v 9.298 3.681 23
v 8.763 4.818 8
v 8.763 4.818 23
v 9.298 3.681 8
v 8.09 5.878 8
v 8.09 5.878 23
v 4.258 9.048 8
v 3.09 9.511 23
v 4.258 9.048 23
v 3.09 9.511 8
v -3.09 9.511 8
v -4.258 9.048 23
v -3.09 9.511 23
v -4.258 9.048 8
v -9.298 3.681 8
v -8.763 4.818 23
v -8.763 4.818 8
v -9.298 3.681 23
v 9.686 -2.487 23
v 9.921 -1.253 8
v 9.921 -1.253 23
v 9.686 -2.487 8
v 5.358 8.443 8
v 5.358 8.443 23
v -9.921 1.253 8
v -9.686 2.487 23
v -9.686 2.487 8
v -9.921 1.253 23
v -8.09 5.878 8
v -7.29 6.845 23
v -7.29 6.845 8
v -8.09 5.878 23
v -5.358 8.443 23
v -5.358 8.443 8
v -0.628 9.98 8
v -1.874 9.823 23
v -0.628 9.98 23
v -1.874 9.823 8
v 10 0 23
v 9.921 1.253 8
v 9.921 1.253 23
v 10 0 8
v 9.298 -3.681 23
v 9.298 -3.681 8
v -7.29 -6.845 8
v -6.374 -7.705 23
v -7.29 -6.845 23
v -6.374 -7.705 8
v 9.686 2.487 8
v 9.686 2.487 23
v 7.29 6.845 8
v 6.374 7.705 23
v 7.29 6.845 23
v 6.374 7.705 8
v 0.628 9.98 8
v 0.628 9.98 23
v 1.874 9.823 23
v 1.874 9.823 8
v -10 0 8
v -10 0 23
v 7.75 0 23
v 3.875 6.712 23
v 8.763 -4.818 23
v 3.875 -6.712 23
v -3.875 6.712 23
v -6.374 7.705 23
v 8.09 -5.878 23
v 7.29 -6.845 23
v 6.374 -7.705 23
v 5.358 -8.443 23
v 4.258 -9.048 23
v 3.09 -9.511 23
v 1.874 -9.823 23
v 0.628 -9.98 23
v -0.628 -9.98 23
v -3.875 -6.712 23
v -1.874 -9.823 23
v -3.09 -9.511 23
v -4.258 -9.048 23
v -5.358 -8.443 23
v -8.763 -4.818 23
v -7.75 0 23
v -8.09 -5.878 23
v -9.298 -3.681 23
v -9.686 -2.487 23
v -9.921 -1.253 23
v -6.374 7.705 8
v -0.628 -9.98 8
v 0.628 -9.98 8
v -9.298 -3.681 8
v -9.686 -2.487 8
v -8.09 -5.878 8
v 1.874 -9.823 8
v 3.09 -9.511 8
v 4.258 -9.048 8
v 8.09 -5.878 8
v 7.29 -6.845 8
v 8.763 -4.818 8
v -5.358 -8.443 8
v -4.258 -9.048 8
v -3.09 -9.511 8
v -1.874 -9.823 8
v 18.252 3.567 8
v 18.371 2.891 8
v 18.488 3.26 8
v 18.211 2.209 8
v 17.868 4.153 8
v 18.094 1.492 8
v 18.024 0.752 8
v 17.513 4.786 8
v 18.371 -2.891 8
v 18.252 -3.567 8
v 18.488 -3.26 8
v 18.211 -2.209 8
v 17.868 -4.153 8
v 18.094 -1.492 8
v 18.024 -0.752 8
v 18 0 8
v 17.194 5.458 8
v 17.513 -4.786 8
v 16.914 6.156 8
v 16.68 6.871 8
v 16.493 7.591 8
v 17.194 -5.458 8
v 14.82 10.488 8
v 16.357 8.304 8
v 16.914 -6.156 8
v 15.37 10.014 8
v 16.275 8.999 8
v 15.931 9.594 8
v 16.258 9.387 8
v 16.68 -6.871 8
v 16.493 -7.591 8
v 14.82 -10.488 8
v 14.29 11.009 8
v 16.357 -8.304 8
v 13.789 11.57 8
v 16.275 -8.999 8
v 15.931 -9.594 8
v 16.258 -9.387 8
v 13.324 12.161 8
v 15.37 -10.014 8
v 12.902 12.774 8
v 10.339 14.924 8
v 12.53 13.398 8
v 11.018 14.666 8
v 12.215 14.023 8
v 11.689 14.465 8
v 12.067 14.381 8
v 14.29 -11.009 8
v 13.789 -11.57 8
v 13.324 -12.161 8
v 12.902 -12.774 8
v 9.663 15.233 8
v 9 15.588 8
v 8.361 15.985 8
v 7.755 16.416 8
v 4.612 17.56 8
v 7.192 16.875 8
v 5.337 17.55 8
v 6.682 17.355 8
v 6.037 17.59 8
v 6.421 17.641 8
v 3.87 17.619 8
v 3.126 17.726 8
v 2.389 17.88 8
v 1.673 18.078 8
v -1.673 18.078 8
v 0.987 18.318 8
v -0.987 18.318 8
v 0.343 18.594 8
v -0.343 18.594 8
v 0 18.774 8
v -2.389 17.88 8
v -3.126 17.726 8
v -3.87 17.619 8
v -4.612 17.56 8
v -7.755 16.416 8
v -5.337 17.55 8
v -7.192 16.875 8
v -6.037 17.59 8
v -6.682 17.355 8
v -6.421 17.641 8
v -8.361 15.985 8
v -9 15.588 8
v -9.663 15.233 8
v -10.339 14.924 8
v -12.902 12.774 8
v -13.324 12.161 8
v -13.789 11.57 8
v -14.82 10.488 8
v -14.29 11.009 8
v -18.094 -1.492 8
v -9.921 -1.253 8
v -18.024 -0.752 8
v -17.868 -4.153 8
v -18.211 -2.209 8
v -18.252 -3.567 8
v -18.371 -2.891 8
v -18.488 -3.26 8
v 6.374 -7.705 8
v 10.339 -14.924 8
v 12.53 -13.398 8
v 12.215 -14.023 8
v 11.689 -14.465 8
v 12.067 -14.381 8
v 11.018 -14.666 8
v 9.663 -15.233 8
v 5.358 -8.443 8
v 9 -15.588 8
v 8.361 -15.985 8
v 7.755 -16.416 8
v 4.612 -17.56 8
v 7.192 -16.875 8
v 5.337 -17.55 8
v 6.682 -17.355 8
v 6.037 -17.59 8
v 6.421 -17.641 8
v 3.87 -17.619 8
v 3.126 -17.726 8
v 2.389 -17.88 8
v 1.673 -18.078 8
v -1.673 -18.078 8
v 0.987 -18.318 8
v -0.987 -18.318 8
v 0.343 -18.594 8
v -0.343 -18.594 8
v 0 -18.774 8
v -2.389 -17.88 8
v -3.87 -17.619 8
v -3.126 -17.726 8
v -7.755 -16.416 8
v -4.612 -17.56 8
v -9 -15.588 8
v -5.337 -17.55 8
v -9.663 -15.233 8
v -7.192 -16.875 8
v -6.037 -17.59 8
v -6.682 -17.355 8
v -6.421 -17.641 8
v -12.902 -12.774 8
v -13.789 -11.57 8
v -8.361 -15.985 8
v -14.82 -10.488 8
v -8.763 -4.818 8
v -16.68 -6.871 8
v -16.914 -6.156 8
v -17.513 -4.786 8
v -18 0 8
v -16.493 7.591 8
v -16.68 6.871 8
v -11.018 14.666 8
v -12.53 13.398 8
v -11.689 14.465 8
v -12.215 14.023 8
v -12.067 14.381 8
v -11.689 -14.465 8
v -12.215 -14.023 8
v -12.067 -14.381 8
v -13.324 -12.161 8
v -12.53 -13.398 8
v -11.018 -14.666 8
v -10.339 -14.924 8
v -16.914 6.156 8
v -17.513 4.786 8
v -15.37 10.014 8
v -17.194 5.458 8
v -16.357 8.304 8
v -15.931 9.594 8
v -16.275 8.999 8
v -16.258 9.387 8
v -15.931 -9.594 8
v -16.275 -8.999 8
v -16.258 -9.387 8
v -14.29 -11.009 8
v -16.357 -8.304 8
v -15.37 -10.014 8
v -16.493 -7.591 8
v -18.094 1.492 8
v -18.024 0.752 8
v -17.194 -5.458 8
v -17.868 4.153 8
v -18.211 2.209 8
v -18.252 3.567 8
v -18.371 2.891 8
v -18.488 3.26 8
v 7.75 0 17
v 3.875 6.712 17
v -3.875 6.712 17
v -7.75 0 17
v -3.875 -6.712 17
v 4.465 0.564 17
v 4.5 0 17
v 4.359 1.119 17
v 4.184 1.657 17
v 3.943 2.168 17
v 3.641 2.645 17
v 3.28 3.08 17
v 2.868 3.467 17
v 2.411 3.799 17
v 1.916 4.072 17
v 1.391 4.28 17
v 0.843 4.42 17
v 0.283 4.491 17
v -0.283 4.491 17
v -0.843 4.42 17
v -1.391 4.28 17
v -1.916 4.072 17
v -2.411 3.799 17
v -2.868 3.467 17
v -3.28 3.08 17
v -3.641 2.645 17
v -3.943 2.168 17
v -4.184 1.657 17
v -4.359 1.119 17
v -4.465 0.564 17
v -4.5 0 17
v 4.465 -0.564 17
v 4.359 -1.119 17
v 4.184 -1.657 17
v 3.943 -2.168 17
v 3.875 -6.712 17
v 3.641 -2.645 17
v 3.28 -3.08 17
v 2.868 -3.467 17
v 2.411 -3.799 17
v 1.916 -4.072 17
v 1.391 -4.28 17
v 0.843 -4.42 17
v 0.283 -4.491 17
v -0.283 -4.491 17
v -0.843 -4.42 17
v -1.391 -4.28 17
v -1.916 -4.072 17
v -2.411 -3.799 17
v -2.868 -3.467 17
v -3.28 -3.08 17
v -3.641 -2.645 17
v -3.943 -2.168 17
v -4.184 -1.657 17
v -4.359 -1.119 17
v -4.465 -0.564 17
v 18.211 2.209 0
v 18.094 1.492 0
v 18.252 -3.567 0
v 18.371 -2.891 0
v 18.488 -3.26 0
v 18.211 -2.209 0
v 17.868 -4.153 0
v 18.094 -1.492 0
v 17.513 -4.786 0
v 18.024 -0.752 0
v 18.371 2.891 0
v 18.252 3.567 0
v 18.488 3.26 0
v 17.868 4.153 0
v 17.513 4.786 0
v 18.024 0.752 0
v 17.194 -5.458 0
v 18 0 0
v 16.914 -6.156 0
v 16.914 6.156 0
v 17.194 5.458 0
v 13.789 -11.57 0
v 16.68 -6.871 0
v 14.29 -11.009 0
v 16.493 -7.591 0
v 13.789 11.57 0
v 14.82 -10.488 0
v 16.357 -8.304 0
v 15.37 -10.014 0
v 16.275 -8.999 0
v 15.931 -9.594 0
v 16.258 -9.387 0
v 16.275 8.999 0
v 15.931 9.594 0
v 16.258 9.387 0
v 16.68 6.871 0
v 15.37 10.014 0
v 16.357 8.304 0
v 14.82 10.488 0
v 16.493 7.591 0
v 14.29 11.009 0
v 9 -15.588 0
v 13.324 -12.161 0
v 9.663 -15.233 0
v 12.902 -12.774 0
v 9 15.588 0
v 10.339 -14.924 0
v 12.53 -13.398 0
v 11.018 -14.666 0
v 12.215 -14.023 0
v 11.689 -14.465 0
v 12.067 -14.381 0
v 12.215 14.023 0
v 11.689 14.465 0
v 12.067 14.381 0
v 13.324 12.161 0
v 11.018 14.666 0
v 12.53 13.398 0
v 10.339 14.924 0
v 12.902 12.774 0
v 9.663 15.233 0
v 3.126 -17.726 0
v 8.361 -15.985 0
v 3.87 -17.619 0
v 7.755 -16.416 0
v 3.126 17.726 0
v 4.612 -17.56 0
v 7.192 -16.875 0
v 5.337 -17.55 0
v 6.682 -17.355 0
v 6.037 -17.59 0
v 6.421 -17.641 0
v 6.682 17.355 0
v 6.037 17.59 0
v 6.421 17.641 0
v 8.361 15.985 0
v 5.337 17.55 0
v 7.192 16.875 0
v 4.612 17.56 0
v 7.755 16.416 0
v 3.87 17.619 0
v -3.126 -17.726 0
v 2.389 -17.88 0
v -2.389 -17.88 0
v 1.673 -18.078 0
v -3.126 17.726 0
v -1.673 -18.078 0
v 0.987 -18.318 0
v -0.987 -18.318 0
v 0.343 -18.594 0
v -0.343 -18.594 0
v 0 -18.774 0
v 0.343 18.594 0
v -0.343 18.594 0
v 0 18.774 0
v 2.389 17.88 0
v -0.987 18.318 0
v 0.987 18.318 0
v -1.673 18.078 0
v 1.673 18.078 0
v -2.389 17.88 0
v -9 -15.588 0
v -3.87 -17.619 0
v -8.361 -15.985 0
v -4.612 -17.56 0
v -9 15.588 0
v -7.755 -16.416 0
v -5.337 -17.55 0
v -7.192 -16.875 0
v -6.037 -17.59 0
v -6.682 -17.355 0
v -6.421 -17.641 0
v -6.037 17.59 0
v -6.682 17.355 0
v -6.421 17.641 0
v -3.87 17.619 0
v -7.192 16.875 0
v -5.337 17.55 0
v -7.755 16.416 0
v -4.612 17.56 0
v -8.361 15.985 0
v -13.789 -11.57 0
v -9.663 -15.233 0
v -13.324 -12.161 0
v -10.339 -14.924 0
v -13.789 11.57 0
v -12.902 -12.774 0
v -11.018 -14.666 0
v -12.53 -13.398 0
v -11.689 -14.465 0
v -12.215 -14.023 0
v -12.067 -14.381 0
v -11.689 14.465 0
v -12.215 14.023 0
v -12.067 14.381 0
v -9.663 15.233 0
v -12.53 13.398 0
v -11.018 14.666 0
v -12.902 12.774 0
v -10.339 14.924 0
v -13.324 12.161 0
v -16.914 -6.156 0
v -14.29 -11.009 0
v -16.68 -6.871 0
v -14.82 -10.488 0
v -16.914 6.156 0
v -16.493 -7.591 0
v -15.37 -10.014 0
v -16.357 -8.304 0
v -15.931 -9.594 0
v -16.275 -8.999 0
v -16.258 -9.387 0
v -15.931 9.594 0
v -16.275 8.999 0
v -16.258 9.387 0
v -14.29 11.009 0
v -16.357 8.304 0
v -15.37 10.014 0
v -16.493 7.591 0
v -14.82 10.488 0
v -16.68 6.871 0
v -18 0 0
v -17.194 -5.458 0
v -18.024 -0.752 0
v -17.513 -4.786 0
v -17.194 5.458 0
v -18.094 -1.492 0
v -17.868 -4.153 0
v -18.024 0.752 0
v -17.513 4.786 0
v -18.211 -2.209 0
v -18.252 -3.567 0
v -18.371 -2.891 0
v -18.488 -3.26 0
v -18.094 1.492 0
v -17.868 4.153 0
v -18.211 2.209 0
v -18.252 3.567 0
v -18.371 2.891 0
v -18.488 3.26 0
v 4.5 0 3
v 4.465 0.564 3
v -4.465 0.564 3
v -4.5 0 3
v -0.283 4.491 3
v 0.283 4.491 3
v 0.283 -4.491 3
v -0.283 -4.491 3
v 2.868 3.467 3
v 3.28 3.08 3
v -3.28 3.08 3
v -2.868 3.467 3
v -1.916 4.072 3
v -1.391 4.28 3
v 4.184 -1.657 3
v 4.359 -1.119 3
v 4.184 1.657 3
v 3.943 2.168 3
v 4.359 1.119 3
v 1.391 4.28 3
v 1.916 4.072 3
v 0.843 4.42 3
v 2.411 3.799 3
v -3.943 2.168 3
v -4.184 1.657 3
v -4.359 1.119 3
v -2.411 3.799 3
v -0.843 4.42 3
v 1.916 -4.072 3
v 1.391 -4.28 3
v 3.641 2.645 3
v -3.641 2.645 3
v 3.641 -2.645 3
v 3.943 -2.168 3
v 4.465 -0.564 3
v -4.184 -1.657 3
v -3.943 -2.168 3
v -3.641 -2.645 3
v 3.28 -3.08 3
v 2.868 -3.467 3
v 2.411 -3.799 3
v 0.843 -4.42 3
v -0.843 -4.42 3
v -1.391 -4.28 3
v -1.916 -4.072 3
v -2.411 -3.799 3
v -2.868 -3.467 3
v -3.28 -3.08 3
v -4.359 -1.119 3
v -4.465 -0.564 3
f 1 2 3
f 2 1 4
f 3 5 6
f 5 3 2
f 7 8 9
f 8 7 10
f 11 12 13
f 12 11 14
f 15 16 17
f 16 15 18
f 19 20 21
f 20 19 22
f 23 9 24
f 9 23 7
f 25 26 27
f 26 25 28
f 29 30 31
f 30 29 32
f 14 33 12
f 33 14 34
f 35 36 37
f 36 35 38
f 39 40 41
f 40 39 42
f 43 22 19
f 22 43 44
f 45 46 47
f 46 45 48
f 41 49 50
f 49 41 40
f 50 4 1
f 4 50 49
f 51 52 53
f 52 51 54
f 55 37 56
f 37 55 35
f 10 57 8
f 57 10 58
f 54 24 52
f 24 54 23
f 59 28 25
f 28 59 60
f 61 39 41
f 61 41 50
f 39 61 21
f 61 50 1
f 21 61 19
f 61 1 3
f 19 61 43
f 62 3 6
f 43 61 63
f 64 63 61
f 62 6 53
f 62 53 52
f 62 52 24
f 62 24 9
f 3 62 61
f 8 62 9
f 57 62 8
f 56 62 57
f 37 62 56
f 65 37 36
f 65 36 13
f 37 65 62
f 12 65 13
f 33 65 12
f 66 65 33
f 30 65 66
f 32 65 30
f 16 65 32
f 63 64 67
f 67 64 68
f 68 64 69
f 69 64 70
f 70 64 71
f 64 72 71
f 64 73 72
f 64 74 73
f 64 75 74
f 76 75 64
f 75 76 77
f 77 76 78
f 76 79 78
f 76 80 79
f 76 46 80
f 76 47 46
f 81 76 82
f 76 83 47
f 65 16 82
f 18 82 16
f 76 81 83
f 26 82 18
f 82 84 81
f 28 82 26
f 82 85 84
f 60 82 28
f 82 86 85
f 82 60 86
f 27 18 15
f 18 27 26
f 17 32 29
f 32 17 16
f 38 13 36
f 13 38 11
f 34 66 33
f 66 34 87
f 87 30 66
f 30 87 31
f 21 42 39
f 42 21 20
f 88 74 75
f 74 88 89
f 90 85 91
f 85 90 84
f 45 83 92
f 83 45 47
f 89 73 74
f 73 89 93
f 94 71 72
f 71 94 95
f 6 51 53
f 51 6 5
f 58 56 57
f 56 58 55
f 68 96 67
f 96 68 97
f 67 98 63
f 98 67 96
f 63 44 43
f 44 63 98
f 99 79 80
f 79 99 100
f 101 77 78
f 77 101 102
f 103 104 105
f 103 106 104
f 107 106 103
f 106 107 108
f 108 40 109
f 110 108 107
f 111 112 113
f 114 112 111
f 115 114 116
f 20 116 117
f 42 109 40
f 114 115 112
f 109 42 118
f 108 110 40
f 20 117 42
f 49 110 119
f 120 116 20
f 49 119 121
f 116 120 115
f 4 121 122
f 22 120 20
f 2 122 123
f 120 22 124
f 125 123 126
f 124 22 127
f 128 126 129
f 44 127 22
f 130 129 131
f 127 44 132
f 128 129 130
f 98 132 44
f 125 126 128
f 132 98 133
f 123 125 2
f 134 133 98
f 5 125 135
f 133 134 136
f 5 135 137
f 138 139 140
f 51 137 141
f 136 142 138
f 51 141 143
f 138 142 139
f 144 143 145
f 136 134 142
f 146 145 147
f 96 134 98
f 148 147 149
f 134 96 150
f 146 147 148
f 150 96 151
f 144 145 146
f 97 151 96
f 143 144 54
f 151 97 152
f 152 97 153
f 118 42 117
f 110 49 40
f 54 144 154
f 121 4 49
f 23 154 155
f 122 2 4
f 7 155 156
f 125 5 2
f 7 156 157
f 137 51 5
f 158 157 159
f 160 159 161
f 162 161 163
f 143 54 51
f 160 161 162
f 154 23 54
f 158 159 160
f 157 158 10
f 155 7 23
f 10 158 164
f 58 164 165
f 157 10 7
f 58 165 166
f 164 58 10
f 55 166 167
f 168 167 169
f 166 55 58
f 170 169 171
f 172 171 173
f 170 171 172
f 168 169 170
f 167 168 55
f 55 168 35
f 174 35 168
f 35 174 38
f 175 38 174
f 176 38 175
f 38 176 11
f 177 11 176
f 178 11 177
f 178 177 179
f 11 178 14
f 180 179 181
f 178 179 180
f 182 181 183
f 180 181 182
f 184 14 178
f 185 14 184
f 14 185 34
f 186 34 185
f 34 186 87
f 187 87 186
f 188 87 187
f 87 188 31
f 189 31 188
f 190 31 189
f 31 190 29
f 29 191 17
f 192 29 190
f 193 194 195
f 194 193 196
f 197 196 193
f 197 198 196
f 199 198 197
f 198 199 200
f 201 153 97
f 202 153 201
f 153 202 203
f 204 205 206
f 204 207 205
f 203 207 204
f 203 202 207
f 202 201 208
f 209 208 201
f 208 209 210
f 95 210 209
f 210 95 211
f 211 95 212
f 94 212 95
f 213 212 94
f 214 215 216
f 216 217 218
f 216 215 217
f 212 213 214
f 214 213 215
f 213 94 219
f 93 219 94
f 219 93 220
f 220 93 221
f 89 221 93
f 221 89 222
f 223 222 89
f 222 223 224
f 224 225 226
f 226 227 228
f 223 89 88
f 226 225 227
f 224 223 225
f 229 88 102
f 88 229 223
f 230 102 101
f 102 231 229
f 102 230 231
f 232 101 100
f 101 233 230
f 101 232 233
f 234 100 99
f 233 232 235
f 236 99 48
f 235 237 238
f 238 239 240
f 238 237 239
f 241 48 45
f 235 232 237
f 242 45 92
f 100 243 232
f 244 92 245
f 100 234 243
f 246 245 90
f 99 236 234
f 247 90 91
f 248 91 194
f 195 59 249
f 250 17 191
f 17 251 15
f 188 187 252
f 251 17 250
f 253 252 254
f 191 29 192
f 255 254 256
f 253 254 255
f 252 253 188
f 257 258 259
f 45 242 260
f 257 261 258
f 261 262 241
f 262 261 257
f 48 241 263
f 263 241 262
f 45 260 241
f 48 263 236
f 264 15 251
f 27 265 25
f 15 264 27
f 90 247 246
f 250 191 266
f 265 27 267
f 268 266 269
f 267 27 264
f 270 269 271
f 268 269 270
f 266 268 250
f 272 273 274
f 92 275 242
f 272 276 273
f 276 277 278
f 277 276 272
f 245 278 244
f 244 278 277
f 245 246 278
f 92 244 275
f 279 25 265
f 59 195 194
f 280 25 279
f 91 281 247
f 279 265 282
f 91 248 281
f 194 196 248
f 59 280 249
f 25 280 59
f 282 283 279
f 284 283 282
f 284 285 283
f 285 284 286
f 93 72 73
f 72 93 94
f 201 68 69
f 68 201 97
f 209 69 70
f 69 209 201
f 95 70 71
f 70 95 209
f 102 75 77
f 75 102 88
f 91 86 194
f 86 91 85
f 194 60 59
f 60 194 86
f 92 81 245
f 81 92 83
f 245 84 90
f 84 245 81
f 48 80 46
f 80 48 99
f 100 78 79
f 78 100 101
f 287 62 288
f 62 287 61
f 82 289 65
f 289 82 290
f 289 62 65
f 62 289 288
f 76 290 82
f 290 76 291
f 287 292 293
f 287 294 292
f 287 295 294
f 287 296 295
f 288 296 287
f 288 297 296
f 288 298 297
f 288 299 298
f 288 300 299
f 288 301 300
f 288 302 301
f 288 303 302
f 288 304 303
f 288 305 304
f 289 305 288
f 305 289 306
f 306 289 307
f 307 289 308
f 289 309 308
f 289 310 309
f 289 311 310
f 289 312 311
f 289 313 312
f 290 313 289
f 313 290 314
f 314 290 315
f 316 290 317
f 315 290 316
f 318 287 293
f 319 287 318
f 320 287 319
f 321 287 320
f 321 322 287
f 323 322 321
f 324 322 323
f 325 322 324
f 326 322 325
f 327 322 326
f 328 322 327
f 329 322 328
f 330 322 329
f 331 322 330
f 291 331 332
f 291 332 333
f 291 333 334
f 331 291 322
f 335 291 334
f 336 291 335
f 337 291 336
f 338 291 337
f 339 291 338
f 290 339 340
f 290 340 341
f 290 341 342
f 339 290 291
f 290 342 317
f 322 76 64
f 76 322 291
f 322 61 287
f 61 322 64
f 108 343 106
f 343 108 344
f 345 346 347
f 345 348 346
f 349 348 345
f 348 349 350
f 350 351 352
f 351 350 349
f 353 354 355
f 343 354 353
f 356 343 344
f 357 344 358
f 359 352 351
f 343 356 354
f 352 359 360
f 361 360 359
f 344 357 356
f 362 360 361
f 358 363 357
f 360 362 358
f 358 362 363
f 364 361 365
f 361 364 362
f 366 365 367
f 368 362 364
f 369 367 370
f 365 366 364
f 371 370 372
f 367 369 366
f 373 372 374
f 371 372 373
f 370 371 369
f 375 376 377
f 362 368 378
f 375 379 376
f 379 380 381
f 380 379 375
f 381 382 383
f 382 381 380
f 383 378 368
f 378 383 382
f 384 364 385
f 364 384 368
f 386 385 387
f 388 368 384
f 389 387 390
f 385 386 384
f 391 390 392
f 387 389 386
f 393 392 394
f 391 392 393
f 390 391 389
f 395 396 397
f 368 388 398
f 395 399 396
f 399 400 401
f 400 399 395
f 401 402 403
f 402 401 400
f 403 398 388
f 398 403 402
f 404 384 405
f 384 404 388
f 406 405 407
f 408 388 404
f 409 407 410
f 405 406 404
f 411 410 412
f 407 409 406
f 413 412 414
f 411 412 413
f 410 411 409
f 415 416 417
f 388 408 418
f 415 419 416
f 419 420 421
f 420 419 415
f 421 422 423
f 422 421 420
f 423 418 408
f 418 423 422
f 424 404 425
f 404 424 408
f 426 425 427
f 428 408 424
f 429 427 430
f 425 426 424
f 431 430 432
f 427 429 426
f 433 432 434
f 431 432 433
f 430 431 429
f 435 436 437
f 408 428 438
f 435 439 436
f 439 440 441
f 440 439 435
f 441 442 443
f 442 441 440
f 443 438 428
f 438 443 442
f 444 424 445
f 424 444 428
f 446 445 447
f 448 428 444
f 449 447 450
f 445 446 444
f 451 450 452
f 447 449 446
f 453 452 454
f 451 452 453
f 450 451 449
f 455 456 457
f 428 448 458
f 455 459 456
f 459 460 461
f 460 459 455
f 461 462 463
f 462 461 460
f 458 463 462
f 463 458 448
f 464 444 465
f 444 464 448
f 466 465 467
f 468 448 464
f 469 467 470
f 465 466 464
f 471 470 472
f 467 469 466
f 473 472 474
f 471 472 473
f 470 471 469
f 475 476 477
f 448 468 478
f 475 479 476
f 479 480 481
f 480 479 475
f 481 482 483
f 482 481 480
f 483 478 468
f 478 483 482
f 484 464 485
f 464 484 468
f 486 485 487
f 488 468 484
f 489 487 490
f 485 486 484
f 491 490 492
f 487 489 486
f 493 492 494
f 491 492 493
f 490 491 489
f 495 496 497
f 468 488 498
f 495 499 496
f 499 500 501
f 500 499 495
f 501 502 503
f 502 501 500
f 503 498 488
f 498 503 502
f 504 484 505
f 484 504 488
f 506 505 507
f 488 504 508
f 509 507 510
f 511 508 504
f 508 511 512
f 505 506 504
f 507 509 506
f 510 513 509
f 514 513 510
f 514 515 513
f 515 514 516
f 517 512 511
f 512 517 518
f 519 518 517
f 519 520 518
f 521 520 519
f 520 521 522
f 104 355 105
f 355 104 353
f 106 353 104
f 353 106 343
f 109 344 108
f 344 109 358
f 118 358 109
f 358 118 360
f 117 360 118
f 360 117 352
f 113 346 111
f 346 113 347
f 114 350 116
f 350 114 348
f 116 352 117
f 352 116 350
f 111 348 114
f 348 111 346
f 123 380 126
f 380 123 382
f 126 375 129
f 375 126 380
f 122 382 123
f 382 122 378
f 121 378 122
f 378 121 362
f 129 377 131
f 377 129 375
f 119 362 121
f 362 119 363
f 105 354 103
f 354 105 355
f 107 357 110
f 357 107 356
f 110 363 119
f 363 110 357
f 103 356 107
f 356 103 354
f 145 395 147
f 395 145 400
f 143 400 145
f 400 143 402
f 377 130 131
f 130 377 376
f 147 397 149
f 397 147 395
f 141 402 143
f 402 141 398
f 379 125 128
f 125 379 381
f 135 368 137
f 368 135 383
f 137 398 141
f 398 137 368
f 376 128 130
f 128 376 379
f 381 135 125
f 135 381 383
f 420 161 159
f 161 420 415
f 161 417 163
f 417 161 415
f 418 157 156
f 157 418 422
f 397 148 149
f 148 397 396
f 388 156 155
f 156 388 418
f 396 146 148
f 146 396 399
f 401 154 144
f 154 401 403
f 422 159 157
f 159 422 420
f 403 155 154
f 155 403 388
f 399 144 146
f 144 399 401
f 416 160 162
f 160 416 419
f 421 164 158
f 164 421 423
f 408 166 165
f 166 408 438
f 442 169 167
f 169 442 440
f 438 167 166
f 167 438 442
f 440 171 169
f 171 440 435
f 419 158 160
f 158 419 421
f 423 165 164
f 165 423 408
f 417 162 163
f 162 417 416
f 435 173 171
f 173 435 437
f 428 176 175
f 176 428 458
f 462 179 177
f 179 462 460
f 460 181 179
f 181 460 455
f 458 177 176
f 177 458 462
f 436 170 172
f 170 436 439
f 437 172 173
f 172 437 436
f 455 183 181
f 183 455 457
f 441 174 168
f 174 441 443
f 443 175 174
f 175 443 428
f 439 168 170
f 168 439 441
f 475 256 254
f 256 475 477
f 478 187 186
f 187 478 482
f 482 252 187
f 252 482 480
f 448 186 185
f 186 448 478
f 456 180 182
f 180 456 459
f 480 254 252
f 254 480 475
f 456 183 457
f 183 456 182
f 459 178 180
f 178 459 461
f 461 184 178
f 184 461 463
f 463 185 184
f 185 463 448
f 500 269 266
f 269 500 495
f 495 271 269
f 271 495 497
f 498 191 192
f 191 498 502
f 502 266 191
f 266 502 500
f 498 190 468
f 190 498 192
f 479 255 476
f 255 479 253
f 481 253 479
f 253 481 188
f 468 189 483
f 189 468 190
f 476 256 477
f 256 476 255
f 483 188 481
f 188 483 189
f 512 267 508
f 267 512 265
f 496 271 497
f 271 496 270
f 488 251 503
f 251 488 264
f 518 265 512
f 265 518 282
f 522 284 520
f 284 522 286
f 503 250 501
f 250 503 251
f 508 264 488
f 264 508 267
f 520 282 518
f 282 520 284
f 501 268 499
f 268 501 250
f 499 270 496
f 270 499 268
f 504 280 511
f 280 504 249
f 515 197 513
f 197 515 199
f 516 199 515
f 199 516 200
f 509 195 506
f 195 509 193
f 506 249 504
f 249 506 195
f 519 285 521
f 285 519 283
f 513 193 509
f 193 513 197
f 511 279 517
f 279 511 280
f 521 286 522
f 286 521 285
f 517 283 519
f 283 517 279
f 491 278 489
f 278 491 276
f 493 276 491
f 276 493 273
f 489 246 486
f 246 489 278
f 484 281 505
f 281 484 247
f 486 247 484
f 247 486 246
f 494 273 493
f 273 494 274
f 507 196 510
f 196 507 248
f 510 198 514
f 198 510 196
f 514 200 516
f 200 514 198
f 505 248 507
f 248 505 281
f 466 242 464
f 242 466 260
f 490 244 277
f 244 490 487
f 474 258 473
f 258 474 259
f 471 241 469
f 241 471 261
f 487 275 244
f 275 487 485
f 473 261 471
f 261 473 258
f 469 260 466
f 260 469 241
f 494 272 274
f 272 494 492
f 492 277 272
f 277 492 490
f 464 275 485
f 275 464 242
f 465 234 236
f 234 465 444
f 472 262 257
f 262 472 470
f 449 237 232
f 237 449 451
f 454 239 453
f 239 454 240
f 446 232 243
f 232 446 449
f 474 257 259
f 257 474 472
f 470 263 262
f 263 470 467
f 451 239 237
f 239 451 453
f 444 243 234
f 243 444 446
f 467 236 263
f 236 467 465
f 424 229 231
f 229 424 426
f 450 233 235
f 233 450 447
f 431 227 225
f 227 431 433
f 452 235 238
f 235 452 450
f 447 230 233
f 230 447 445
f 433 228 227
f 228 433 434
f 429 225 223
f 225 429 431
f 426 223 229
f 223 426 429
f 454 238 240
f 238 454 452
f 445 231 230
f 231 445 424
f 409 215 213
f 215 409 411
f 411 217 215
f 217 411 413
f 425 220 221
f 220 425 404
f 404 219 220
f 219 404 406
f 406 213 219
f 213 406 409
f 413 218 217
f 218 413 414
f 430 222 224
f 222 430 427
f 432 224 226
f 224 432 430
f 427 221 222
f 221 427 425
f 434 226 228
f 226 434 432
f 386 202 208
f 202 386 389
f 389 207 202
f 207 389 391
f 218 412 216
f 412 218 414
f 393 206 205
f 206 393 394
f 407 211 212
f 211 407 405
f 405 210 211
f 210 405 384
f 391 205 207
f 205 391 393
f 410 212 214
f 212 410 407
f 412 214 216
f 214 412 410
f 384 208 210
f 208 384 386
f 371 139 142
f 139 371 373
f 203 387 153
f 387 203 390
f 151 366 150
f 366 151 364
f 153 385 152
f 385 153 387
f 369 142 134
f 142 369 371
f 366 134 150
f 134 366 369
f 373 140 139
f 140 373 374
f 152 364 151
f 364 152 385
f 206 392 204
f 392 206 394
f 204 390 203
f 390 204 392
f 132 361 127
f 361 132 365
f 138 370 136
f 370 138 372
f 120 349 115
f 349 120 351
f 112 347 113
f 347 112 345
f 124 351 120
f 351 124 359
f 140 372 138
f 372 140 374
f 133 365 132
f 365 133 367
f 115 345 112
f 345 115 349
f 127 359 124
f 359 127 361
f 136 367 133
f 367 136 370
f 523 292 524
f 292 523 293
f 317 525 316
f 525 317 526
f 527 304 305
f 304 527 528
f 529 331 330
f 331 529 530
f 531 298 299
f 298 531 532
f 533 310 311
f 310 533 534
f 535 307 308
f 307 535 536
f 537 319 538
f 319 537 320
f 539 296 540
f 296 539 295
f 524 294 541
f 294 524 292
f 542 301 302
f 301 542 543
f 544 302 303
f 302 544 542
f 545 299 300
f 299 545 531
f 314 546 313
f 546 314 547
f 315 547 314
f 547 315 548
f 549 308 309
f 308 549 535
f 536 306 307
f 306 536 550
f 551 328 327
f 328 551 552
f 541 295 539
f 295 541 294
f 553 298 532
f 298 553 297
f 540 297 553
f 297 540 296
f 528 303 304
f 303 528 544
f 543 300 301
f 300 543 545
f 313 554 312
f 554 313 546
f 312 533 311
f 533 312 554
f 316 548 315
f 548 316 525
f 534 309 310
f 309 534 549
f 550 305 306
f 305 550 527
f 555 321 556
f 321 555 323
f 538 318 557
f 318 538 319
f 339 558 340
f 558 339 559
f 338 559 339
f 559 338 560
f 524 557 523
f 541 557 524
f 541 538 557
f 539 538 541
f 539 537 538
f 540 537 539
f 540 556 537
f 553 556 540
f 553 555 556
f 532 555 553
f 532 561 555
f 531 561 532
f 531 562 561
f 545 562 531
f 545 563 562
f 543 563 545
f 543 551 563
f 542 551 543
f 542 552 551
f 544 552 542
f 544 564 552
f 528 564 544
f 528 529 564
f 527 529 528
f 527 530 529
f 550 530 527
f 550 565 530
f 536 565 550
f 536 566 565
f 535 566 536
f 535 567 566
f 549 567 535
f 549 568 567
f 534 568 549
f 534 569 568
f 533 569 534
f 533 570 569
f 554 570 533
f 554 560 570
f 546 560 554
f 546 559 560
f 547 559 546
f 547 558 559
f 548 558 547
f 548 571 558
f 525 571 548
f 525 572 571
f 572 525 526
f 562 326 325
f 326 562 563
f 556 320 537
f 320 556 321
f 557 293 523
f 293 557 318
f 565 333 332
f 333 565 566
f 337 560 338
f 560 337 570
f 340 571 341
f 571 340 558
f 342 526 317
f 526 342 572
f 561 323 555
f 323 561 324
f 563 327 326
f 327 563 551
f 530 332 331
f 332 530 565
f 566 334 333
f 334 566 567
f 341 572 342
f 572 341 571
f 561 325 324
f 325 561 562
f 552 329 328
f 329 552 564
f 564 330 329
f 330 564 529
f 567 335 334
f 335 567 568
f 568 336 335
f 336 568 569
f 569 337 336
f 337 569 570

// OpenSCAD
$fn=50;
module bottom() {
    difference() {
        cylinder(r=20,h=8);
        for(i=[0:20:360])rotate([0,0,i])translate([21,0])scale([1,2,1])cylinder(r=3,h=8);
    }
}
module top() {
    translate([0,0,8])difference() {
        cylinder(r=10,h=15);
        translate([0,0,9])cylinder(r=15.5/2,h=7,$fn=6);
    }
}
difference() {
    union() {
        top();
        bottom();
    }
    translate([0,0,3])cylinder(r=4.5,h=20);
}
